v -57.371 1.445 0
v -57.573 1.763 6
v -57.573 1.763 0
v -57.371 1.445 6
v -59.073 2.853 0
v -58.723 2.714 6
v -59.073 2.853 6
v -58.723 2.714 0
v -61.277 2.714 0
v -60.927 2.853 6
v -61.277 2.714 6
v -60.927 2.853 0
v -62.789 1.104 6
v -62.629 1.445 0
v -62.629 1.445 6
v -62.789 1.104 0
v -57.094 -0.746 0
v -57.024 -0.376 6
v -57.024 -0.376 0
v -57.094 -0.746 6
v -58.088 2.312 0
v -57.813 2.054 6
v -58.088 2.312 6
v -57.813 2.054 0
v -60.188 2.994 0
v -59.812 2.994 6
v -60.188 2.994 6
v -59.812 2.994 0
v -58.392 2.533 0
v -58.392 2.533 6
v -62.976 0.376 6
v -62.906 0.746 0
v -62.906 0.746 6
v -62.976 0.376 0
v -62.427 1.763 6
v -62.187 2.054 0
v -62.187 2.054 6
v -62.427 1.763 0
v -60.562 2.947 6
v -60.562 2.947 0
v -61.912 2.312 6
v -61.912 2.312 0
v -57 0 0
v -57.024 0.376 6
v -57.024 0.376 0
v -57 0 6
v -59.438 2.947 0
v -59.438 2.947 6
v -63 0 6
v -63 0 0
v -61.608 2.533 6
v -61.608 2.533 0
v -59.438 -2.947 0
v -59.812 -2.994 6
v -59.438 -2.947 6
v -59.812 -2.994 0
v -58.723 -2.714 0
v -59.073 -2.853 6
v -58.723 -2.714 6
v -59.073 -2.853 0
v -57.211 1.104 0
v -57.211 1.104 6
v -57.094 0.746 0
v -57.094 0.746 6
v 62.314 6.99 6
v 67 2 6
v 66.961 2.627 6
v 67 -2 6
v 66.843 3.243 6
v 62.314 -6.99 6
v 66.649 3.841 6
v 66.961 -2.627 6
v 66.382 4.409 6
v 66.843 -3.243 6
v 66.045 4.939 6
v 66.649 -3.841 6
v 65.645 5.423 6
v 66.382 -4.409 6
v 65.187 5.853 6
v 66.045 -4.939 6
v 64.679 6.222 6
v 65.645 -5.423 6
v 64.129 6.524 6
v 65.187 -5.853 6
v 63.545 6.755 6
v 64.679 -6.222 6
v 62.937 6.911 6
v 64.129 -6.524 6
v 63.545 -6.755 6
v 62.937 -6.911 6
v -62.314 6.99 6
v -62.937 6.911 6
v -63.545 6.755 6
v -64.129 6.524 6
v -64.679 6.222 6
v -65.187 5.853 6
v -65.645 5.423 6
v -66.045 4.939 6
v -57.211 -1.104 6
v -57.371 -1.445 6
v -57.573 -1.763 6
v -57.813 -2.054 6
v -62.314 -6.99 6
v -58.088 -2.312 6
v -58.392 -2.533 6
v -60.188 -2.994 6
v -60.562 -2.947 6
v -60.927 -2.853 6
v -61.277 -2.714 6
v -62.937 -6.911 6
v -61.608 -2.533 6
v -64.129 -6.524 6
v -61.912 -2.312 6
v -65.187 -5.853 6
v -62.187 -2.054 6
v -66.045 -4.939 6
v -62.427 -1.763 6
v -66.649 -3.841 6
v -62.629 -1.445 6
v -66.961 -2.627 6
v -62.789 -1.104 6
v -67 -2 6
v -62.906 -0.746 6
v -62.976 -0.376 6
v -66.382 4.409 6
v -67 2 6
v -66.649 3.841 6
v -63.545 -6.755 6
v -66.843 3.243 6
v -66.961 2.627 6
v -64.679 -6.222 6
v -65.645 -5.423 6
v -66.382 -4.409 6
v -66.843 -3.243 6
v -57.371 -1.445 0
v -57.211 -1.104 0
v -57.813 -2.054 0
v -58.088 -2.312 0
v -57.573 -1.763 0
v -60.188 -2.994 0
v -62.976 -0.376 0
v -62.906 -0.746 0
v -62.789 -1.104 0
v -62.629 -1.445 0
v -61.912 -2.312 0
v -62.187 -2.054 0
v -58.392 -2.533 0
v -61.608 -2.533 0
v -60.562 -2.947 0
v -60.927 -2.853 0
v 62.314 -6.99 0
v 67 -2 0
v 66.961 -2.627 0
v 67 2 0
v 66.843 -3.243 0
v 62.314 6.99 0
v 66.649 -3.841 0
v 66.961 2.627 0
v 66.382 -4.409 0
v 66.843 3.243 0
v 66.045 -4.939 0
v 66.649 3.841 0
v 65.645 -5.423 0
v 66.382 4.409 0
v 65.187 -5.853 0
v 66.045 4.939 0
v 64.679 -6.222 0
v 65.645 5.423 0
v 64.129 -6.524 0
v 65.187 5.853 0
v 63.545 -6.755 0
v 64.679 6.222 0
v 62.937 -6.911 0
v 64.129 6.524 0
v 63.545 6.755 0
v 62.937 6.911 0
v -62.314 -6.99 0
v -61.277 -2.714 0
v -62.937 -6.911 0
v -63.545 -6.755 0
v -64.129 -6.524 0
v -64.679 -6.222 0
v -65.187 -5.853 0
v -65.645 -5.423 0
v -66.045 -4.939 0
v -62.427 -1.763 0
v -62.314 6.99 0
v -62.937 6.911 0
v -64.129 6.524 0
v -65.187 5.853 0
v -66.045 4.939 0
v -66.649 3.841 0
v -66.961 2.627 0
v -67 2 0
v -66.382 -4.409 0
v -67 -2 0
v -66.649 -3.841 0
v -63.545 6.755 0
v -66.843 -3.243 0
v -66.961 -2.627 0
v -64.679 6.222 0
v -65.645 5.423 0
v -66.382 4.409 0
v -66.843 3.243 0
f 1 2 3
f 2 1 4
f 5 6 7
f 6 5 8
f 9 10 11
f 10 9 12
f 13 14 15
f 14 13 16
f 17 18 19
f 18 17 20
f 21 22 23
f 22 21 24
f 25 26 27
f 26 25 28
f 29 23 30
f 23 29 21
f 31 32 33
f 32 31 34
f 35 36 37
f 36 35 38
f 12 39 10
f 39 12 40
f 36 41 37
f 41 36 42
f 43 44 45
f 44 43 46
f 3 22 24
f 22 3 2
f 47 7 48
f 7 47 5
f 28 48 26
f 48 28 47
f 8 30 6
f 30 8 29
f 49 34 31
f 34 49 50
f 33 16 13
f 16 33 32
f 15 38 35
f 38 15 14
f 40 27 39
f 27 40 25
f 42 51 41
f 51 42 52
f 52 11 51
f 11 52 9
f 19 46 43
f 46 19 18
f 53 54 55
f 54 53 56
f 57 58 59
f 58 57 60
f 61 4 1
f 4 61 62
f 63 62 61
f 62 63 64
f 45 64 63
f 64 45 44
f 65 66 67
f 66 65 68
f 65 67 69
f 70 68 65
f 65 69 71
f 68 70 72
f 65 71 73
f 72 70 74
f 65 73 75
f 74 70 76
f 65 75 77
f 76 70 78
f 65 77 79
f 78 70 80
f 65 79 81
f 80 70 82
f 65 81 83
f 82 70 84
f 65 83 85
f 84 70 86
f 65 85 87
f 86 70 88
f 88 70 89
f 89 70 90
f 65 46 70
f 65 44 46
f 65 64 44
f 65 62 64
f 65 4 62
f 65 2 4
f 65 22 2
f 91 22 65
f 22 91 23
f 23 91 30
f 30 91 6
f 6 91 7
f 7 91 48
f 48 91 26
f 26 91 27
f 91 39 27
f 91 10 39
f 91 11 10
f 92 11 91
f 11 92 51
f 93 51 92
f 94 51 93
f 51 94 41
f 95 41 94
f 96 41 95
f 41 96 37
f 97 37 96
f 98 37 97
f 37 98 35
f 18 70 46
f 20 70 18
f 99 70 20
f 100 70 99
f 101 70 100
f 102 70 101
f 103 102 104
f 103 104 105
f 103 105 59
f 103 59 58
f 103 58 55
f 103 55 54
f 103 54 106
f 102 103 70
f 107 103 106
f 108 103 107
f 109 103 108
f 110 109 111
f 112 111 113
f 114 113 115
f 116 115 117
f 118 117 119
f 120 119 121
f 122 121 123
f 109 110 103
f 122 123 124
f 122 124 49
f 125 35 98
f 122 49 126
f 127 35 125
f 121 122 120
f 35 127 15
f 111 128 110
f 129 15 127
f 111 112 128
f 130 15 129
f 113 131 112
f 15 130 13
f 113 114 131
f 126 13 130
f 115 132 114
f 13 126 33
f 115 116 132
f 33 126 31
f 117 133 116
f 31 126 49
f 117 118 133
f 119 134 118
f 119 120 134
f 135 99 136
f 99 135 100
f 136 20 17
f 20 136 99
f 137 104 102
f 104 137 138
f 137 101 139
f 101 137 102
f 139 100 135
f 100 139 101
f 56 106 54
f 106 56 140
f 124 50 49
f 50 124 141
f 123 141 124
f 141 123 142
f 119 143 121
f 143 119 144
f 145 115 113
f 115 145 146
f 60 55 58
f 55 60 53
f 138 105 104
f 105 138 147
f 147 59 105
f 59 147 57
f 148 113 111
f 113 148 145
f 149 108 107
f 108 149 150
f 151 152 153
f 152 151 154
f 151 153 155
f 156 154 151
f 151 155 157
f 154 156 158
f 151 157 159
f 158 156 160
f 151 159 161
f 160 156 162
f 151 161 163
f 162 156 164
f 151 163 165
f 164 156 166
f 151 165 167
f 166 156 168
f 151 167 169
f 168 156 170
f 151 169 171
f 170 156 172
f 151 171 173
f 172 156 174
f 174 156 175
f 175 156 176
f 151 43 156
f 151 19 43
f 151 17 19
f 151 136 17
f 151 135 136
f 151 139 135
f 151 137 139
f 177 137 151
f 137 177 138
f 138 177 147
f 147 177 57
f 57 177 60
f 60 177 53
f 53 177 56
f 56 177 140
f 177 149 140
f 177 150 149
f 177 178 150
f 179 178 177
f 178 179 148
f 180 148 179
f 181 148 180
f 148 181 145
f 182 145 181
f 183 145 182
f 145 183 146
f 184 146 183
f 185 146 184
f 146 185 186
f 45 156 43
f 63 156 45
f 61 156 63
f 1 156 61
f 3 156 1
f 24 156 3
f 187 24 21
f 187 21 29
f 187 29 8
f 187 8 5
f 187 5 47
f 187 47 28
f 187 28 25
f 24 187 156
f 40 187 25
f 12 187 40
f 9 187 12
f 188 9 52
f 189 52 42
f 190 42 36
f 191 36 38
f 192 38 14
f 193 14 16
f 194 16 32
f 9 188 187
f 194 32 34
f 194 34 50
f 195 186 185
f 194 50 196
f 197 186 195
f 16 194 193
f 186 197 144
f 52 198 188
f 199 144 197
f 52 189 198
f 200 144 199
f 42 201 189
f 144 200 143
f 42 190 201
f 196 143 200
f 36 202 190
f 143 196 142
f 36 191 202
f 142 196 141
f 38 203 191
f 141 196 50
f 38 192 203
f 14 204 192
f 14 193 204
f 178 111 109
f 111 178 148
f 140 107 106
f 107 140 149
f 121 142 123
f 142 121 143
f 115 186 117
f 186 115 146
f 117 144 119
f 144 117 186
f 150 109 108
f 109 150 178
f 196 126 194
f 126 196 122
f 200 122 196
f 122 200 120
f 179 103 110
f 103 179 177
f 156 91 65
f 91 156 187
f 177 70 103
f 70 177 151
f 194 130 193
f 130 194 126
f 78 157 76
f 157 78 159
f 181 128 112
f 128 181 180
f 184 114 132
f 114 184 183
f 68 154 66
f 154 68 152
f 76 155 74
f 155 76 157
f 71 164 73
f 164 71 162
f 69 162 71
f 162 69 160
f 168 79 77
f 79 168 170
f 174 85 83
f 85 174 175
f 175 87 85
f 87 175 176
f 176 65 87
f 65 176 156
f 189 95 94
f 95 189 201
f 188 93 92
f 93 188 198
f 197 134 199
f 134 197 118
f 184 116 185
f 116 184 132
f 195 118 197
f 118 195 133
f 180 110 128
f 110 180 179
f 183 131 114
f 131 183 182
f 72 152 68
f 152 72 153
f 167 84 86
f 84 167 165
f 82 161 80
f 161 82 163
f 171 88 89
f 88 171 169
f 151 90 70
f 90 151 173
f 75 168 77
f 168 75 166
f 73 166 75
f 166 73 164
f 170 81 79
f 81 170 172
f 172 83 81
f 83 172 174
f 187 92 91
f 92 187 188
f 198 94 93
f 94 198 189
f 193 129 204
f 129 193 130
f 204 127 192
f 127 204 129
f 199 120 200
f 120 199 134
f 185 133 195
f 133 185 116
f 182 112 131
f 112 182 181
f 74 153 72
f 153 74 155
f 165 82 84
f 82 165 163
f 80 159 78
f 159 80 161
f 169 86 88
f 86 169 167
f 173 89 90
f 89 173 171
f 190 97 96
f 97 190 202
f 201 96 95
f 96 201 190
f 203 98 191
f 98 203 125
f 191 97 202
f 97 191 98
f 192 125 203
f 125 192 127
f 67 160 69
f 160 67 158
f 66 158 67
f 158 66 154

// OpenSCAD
$fn = 50;


difference() {
	union() {
		hull() {
			translate(v = [-62.0000000000, 2.0000000000, 0]) {
				cylinder(h = 6, r = 5);
			}
			translate(v = [62.0000000000, 2.0000000000, 0]) {
				cylinder(h = 6, r = 5);
			}
			translate(v = [-62.0000000000, -2.0000000000, 0]) {
				cylinder(h = 6, r = 5);
			}
			translate(v = [62.0000000000, -2.0000000000, 0]) {
				cylinder(h = 6, r = 5);
			}
		}
	}
	union() {
		translate(v = [-60.0000000000, 0.0000000000, 0]) {
			cylinder(h = 6, r = 3.0000000000);
		}
		translate(v = [-60.0000000000, 0.0000000000, 0]) {
			cylinder(h = 6, r = 1.5000000000);
		}
		translate(v = [-60.0000000000, 0.0000000000, 0]) {
			cylinder(h = 6, r = 1.5000000000);
		}
		translate(v = [-60.0000000000, 0.0000000000, 0]) {
			cylinder(h = 6, r = 1.5000000000);
		}
	}
}
